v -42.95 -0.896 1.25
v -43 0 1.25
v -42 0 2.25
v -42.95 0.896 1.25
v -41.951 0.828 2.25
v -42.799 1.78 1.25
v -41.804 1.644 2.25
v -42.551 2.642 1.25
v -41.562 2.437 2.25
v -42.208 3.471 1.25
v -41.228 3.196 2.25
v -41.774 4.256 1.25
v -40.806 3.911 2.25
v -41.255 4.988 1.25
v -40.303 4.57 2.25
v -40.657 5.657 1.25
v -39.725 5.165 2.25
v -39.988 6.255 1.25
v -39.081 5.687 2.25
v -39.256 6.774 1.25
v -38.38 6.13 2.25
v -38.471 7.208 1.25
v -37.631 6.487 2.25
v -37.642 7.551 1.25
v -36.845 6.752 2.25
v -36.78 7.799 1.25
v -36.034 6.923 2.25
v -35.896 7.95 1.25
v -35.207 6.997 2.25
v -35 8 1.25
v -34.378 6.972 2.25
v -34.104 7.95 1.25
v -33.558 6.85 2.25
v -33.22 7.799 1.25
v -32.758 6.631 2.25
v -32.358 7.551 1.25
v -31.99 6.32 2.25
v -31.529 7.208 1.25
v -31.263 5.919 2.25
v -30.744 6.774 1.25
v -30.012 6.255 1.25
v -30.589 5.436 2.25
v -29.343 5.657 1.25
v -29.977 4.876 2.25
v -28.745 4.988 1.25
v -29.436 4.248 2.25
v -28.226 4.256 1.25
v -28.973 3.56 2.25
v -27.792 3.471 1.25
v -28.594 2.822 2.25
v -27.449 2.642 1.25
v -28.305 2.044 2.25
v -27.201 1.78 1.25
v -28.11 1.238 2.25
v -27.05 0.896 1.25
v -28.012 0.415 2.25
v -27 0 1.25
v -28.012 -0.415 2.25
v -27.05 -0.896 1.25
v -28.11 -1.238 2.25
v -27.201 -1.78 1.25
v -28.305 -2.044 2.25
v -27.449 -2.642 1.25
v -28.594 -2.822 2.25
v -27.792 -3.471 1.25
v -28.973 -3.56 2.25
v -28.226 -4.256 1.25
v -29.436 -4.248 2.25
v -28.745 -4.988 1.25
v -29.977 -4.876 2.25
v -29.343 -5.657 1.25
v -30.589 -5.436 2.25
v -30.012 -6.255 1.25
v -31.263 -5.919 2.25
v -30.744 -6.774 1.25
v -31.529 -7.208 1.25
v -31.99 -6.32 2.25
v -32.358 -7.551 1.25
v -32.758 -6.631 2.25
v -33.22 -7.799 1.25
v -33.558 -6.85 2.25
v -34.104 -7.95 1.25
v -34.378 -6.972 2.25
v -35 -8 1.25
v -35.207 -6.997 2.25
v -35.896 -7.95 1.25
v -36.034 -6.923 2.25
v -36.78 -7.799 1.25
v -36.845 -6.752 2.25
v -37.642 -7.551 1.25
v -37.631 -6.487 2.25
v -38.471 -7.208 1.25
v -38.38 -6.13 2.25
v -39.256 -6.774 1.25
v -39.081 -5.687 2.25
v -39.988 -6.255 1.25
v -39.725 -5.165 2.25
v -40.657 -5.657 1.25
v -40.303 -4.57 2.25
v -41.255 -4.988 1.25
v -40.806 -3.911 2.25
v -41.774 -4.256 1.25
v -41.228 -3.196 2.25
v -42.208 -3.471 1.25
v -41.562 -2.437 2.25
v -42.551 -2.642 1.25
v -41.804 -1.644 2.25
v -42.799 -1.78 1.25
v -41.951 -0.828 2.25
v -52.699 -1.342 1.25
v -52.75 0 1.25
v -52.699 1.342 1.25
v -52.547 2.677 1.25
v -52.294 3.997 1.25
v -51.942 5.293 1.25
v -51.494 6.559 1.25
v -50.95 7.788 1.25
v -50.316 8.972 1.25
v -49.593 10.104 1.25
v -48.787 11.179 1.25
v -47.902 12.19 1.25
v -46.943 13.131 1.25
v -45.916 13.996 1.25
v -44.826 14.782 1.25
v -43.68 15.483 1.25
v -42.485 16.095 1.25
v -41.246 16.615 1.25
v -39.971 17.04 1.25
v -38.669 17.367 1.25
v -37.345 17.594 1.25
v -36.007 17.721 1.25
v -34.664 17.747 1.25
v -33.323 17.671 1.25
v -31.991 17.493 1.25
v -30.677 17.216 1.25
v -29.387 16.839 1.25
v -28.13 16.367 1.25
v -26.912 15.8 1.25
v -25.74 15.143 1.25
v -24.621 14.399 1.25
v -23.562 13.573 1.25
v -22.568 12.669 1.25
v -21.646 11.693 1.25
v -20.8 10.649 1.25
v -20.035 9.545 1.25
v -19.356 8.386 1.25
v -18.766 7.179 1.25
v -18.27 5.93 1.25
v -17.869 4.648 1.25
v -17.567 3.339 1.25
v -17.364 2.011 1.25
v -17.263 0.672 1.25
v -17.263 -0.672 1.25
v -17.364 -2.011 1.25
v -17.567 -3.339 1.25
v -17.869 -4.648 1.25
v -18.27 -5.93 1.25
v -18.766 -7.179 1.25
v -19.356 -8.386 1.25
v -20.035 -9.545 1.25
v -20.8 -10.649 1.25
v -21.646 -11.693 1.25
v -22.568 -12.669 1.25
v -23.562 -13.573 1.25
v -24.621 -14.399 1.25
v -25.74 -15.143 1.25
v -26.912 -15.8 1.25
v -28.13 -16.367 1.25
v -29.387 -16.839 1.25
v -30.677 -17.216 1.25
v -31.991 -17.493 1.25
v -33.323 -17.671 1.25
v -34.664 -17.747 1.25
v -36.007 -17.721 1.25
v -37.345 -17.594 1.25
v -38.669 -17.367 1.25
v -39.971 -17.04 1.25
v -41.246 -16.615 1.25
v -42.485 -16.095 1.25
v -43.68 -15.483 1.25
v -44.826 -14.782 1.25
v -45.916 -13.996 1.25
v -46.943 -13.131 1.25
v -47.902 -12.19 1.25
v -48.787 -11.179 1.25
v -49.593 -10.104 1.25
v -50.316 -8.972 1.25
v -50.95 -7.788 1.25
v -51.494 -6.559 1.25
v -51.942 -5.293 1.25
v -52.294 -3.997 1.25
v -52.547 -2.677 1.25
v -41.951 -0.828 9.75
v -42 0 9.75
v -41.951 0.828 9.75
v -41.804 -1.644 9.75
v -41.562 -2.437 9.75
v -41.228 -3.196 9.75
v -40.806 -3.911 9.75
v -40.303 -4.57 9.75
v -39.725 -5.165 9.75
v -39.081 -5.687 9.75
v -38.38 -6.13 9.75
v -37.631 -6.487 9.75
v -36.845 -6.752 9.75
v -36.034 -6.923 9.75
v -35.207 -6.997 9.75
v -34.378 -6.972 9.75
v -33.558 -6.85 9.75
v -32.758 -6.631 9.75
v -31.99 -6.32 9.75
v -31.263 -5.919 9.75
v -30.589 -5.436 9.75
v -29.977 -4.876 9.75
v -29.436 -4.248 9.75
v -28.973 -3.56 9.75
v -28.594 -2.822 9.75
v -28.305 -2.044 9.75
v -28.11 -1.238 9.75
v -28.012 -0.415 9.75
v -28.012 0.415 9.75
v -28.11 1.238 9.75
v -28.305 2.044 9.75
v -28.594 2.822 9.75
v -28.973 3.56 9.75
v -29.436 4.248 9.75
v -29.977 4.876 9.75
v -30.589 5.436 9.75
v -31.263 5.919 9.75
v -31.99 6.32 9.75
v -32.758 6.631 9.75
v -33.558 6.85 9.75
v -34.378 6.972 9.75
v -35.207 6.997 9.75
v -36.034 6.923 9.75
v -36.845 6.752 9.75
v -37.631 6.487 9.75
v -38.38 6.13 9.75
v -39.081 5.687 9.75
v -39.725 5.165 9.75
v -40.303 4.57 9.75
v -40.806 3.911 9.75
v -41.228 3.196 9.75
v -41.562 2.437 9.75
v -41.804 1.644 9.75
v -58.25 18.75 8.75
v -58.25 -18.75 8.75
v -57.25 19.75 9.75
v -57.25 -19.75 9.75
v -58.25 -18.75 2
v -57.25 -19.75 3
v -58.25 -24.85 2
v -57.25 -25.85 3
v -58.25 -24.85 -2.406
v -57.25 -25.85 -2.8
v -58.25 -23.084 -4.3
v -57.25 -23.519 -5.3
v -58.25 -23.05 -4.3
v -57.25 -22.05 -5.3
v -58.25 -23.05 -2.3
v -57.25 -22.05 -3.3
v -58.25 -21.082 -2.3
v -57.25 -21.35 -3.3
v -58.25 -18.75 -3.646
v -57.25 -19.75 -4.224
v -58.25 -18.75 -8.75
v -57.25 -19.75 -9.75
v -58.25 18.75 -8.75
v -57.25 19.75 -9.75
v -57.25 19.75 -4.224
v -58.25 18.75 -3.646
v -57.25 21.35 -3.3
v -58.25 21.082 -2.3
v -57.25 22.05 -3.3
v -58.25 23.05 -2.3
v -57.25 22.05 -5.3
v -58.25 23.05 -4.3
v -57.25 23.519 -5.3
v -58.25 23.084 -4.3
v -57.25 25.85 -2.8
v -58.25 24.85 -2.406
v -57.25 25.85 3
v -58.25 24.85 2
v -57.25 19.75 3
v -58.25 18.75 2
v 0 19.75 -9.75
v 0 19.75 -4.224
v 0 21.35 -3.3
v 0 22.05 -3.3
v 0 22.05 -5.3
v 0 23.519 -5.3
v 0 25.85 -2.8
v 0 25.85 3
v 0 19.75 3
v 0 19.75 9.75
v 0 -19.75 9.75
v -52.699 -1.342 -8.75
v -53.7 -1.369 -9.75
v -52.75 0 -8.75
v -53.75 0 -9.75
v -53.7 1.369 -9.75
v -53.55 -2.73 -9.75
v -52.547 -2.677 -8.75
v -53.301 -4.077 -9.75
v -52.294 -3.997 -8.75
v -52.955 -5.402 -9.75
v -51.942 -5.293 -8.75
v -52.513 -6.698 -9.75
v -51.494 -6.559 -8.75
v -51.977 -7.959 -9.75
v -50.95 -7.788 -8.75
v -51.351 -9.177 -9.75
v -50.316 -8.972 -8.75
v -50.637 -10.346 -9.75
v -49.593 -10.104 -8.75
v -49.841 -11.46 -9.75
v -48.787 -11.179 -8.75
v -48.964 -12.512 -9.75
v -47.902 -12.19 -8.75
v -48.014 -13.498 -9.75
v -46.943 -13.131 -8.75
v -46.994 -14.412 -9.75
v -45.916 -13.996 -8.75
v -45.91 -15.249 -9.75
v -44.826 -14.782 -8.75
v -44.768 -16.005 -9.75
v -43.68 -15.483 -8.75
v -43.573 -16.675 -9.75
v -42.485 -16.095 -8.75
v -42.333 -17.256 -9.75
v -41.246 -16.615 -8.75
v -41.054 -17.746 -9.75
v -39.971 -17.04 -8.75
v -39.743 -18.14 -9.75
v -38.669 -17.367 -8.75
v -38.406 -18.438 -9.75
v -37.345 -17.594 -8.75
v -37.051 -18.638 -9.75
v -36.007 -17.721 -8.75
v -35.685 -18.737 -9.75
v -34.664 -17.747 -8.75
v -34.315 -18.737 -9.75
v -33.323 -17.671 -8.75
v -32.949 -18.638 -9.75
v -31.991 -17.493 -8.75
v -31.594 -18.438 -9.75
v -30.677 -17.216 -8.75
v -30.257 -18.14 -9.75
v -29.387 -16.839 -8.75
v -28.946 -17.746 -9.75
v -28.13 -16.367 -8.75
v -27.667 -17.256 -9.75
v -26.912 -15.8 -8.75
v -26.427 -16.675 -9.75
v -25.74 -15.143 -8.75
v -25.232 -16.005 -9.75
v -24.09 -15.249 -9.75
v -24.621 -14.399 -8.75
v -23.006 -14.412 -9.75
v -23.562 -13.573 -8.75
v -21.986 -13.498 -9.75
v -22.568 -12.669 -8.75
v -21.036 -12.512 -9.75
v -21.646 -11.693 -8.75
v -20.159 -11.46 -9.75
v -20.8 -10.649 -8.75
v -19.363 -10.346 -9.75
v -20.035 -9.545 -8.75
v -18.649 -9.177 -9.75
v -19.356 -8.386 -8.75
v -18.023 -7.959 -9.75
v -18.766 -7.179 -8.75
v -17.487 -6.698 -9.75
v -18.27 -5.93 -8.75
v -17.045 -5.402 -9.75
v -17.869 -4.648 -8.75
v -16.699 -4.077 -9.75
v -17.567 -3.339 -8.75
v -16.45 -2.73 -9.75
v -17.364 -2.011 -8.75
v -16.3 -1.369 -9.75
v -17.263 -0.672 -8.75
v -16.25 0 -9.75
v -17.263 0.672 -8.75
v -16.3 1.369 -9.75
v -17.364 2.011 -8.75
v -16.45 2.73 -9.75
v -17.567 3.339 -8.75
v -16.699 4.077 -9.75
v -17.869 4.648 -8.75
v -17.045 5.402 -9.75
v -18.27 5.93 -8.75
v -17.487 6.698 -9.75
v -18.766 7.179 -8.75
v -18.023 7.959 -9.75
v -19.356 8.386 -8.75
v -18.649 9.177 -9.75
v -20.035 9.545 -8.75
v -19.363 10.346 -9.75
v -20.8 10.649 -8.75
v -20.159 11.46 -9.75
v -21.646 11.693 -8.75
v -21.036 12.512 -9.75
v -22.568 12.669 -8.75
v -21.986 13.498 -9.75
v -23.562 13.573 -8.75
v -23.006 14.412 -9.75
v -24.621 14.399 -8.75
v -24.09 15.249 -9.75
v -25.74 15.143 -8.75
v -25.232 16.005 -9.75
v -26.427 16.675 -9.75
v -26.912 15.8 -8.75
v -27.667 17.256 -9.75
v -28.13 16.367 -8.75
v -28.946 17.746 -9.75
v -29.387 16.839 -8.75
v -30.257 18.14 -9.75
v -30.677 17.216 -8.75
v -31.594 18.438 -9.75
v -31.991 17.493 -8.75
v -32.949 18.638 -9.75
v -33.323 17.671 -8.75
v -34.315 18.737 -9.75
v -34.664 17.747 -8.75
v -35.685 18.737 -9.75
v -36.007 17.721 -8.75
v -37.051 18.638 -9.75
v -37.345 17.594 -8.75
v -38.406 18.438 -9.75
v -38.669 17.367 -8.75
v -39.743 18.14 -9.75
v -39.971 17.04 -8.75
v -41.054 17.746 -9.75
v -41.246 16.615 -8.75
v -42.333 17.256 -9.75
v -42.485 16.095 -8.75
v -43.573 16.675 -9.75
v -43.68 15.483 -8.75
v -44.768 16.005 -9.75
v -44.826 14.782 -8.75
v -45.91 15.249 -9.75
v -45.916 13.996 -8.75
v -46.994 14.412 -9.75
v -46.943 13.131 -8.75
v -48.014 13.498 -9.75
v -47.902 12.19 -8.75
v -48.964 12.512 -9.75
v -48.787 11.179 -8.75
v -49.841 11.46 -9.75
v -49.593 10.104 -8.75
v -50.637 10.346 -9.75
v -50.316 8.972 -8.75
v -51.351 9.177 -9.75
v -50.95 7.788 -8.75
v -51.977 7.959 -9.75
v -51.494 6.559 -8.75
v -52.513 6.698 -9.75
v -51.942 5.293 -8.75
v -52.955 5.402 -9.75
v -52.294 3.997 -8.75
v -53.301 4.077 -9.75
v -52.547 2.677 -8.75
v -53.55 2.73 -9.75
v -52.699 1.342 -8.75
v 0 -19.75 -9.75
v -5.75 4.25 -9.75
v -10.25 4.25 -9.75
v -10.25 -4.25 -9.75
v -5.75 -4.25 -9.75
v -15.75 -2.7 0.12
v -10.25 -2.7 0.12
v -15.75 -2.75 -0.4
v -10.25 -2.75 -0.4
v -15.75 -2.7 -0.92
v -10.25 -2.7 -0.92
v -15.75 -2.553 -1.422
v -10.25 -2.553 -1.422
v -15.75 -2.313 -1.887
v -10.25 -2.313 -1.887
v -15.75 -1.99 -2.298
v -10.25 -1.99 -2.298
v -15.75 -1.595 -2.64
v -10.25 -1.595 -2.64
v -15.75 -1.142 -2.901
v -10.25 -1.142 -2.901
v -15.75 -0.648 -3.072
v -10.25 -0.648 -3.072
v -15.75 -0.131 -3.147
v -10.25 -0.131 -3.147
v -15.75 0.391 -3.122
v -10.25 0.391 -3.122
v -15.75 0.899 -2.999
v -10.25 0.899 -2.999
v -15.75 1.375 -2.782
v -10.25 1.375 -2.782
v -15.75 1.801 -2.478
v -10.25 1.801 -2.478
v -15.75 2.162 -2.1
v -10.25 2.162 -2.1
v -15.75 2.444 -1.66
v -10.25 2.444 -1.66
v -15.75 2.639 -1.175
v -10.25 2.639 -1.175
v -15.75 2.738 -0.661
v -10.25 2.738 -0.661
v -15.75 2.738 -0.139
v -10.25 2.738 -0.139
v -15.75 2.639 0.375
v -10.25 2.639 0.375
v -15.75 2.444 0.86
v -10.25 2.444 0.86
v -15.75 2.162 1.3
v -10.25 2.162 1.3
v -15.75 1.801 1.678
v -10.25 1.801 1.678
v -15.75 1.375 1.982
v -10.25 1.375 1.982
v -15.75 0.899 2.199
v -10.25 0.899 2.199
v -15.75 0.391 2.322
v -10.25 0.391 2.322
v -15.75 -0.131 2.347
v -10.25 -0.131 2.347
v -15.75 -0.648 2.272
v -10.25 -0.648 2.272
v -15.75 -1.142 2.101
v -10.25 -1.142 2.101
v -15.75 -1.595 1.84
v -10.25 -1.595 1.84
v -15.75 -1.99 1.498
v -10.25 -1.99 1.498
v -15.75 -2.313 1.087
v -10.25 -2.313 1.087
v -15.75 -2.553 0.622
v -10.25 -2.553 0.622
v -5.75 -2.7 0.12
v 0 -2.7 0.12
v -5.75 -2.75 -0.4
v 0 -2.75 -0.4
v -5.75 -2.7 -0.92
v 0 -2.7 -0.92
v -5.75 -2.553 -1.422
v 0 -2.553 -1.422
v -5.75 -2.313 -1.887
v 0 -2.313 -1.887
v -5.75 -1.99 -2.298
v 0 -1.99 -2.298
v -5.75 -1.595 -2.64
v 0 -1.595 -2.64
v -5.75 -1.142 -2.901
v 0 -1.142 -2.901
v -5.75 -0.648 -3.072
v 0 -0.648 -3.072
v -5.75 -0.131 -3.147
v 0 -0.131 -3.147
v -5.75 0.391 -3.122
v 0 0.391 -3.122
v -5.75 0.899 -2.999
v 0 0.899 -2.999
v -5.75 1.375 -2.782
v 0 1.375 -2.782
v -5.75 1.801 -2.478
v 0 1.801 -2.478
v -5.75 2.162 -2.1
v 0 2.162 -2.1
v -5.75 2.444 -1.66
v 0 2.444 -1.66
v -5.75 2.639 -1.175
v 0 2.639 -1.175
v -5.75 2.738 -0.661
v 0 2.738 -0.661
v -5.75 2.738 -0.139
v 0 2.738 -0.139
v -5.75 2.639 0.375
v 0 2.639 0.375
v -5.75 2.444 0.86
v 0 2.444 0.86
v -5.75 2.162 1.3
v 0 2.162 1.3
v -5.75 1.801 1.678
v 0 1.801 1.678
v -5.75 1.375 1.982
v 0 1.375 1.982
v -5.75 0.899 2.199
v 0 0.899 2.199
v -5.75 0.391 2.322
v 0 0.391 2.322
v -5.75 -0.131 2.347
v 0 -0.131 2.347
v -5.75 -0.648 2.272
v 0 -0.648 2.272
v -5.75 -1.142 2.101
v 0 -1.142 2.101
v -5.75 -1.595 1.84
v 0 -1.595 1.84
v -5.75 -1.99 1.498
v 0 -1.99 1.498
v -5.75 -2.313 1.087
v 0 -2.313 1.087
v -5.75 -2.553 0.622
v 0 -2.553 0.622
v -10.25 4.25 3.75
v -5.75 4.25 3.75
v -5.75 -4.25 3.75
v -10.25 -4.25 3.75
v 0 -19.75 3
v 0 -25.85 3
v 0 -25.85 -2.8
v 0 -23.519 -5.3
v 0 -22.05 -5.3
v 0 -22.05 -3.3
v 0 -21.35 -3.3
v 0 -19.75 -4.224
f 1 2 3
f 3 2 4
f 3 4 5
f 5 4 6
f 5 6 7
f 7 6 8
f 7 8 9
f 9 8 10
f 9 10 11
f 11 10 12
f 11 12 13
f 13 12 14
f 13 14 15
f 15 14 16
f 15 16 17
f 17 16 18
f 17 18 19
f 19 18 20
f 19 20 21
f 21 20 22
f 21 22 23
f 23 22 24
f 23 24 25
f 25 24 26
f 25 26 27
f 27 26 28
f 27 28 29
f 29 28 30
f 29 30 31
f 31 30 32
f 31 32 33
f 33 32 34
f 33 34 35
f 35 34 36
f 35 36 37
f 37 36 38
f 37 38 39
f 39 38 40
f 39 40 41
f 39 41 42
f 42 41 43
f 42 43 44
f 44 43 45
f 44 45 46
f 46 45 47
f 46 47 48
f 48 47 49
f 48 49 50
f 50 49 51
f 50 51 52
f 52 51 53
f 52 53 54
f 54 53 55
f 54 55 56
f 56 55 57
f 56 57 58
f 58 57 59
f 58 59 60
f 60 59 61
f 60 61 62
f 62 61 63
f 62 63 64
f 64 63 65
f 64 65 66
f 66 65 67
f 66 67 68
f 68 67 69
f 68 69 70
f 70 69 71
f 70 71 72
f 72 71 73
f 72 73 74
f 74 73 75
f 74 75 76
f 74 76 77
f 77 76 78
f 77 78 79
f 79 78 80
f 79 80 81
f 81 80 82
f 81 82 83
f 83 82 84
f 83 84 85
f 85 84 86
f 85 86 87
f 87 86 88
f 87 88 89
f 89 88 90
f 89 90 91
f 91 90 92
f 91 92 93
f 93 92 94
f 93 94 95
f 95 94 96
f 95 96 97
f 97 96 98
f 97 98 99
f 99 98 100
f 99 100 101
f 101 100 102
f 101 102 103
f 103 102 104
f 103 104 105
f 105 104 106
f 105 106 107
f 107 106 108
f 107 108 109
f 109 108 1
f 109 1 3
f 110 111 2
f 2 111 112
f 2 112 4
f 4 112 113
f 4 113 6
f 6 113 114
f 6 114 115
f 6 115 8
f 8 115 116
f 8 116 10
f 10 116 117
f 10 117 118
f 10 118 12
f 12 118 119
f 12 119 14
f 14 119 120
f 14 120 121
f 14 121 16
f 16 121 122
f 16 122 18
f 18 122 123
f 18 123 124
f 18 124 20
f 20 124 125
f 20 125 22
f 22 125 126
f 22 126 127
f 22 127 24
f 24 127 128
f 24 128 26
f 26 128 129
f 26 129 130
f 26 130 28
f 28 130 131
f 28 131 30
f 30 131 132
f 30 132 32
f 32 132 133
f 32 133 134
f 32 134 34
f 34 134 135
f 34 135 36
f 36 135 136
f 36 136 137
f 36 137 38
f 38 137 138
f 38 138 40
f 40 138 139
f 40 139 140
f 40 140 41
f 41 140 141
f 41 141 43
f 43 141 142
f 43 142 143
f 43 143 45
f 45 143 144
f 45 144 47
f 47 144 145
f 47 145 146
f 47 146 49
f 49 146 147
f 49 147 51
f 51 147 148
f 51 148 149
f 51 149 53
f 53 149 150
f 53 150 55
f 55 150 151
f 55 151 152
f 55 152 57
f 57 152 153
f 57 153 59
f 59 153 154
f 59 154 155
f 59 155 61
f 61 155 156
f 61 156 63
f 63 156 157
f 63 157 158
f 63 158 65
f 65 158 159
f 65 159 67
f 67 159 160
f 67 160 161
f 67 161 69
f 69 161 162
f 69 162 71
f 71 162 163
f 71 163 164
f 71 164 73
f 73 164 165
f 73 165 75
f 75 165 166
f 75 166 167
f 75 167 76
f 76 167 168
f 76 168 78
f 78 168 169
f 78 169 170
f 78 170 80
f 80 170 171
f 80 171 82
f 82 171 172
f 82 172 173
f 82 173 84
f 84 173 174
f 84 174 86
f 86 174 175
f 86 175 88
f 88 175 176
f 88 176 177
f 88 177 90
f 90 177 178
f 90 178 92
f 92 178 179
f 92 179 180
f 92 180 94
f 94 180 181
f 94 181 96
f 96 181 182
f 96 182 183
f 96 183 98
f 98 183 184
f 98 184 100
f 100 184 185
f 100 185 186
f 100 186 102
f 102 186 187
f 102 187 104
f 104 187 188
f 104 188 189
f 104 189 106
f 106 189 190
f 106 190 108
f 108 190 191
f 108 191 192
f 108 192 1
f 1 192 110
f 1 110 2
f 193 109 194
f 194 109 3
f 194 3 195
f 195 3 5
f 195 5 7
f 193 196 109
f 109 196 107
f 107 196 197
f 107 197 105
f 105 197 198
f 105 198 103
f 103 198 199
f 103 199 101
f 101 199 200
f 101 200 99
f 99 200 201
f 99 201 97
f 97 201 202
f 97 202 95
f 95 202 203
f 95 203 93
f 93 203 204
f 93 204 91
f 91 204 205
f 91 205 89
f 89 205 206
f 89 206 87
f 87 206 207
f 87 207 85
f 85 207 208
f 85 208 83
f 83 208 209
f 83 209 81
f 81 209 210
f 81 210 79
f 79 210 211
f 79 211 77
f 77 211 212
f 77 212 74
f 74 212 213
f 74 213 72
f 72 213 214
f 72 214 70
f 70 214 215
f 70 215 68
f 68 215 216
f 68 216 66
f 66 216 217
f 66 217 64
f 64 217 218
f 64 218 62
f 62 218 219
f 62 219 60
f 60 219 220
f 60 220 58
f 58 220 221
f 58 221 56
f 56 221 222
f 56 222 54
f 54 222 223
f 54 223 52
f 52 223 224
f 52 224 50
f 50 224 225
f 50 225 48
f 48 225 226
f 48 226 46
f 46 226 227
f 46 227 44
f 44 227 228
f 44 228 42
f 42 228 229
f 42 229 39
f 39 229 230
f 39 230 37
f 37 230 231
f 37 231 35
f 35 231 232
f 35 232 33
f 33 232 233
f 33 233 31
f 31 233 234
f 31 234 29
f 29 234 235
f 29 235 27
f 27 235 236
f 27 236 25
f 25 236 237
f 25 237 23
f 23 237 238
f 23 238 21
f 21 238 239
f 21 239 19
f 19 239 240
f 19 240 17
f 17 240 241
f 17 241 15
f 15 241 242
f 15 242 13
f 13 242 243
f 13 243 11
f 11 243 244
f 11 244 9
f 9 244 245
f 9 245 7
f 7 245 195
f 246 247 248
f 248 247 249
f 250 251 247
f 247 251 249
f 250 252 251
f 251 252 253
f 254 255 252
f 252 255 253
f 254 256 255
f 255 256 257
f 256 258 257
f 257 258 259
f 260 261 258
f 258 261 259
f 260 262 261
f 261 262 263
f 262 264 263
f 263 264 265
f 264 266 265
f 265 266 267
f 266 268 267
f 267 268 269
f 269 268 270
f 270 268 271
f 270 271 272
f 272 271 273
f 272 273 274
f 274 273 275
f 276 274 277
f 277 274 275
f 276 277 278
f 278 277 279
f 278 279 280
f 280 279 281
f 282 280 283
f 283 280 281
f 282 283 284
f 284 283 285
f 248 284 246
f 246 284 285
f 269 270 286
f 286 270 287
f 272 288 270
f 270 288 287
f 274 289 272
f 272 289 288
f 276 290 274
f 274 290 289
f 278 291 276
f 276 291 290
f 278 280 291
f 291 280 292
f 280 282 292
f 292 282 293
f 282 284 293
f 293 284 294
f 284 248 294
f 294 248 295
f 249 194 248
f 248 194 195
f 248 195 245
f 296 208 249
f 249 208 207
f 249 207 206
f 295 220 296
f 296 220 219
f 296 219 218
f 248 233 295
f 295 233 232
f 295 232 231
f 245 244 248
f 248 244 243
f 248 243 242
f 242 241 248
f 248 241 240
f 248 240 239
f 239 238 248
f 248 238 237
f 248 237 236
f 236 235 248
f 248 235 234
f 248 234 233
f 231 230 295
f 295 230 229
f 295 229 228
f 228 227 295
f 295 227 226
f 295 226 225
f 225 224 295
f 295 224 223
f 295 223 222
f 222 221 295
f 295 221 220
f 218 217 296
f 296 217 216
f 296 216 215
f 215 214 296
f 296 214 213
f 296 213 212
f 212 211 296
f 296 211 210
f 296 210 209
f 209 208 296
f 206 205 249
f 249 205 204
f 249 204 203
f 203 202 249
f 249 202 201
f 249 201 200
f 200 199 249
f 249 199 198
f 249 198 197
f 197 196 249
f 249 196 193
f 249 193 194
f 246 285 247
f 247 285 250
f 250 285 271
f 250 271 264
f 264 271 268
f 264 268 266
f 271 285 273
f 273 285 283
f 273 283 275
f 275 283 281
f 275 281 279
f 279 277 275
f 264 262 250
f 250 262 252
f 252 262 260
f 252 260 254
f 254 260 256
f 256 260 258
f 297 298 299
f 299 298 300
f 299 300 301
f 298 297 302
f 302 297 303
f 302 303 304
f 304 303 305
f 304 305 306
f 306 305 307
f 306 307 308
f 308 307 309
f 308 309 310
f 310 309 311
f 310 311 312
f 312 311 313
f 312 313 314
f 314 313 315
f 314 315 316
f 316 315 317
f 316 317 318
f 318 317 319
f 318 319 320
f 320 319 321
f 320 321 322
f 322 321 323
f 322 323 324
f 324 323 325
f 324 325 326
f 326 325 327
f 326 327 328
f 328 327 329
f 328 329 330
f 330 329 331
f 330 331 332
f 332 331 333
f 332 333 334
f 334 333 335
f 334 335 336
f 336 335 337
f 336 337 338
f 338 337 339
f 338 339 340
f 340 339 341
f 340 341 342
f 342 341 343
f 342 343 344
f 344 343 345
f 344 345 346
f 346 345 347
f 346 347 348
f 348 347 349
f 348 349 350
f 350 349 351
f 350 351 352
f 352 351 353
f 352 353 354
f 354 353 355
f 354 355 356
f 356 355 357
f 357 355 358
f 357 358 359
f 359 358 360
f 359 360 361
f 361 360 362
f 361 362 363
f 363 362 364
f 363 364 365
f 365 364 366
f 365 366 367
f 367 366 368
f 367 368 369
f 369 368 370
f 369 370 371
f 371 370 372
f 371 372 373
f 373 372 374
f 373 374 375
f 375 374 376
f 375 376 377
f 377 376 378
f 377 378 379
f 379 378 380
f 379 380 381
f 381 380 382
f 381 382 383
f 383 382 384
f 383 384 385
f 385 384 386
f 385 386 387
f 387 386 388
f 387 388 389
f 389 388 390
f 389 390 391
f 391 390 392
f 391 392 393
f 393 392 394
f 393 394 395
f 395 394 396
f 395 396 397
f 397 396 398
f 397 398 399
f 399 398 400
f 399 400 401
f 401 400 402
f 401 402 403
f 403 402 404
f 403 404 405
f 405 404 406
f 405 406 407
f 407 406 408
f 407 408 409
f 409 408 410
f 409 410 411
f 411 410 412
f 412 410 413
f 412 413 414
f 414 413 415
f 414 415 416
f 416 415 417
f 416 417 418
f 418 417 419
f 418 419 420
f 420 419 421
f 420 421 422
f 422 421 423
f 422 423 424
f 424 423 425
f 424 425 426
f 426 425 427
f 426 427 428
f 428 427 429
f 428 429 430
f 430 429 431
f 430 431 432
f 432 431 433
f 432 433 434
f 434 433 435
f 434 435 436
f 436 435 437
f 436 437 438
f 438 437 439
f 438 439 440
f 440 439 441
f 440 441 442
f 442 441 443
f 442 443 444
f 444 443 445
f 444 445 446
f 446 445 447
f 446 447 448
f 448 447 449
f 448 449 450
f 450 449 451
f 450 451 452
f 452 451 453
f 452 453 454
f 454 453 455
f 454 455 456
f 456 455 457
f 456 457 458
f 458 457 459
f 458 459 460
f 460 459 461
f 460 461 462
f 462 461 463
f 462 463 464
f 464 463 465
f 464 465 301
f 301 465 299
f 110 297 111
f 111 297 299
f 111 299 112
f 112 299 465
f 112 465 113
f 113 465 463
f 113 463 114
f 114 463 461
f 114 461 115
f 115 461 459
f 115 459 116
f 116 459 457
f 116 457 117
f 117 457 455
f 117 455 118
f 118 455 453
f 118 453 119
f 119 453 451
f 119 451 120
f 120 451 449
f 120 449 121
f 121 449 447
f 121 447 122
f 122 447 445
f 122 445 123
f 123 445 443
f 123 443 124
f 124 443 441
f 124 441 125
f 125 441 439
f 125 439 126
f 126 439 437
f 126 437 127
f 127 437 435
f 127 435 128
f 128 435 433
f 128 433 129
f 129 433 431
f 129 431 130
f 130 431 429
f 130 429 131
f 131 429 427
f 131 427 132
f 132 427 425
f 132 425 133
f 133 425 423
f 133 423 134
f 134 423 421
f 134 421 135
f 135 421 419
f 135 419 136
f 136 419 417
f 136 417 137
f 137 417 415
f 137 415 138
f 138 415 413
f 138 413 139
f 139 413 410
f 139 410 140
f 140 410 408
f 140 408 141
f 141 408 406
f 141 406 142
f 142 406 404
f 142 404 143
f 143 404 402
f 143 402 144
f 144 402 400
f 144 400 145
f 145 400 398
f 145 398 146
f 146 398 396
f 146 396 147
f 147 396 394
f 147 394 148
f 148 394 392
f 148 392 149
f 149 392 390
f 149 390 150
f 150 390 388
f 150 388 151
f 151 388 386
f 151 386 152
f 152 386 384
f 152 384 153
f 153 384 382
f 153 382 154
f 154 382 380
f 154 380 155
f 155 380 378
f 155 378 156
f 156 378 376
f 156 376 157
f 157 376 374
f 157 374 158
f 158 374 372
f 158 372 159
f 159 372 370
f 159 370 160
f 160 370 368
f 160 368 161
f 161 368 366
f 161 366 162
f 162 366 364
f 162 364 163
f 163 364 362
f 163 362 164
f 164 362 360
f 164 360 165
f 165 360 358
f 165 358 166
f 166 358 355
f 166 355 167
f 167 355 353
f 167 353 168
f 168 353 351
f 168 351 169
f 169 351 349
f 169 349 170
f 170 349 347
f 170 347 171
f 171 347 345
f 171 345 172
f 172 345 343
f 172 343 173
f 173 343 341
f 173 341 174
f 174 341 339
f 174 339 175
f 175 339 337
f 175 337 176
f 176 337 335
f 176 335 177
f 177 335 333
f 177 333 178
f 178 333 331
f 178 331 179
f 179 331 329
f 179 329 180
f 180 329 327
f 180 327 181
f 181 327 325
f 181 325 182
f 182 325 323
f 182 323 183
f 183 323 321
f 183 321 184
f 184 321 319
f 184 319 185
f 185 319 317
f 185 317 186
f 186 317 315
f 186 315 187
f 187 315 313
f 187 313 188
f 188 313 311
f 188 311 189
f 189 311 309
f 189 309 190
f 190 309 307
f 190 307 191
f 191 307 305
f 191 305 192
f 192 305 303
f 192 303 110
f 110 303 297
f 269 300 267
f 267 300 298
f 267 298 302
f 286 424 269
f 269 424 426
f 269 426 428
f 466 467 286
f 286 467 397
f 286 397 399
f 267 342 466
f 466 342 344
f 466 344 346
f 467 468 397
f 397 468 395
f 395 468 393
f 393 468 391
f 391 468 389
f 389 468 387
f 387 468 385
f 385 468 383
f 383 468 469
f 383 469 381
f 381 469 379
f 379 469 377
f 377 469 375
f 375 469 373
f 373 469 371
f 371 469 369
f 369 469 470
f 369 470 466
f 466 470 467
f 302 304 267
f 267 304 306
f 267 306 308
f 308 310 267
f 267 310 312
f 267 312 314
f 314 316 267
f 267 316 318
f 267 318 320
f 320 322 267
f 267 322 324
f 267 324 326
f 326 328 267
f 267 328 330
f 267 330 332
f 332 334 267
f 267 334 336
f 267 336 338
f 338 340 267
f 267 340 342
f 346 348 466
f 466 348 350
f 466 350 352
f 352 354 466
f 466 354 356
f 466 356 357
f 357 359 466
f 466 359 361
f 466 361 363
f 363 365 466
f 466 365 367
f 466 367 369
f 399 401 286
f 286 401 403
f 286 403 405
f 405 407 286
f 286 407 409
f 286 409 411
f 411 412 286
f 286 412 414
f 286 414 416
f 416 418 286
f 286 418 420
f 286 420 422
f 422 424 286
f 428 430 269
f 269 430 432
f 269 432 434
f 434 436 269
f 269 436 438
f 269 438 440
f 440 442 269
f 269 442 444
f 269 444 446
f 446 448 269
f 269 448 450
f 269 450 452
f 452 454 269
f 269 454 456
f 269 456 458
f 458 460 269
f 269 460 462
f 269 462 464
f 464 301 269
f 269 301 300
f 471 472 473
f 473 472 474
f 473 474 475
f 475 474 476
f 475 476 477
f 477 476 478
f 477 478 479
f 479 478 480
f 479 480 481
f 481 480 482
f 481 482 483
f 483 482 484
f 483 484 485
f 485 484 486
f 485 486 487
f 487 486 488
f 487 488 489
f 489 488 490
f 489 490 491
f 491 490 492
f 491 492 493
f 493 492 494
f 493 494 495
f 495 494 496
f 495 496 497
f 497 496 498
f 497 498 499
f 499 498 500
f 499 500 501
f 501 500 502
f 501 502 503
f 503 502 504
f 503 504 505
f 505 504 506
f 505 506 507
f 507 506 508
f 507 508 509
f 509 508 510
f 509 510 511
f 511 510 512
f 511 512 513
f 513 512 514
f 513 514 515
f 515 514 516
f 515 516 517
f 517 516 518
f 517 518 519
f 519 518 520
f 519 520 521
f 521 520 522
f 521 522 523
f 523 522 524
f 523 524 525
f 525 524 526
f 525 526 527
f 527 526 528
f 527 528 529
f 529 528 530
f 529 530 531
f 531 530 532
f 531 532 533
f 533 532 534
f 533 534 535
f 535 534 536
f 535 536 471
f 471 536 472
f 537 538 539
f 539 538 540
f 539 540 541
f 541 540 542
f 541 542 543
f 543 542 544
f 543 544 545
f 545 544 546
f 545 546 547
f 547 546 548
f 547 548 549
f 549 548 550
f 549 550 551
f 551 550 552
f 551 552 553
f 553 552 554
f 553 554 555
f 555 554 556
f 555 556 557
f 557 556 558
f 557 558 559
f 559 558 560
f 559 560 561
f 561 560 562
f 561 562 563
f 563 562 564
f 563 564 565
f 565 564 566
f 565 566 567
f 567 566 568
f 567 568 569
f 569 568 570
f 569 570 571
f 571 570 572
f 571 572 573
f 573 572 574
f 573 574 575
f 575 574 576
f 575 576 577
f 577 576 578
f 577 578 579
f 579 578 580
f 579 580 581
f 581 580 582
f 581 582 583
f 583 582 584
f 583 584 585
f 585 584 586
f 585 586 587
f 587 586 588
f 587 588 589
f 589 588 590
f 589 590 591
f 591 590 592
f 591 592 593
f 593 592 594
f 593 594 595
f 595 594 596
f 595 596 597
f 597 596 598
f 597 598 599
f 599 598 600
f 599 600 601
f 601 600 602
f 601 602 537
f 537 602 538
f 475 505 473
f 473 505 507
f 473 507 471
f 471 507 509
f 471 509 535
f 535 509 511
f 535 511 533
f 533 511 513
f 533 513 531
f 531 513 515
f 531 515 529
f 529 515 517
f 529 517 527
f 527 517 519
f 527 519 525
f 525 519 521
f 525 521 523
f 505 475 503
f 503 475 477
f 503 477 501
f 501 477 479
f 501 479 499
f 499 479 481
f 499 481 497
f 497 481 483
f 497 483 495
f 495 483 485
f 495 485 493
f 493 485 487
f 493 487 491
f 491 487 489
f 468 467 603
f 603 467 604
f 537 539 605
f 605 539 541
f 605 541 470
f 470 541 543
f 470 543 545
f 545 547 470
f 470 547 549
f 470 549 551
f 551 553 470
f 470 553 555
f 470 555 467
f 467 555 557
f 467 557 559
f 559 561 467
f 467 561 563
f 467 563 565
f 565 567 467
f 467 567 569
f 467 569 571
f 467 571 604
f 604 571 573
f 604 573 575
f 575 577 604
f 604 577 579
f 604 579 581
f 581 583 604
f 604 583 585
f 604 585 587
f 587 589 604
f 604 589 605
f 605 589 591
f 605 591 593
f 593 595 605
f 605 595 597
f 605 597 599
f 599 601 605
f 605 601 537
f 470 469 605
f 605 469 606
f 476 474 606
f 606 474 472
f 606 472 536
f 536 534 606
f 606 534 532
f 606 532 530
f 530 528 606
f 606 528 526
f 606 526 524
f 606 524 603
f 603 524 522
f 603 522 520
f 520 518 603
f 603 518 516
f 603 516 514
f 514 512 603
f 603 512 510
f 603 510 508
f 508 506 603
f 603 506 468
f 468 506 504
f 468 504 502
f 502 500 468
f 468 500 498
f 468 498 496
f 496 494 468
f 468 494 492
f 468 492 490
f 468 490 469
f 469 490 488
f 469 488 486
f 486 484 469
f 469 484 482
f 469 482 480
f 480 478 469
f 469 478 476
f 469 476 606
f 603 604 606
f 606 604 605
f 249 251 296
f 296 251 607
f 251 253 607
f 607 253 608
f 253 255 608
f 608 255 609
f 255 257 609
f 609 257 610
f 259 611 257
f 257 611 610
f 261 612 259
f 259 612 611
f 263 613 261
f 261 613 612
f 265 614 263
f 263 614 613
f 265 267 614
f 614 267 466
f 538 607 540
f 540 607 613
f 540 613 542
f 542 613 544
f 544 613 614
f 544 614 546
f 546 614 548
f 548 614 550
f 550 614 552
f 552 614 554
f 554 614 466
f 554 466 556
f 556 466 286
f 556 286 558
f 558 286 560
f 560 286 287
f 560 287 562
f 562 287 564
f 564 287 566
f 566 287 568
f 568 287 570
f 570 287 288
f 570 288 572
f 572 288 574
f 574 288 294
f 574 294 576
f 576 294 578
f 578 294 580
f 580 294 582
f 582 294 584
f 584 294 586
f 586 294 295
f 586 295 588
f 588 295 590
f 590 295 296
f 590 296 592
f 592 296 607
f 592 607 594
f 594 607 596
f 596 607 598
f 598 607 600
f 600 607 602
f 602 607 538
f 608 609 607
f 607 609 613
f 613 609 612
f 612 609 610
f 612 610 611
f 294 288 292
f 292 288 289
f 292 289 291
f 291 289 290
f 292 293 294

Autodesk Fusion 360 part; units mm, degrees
sketch "Main Profile" plane through (0, 0, 0) normal (1, 0, 0) x (0, 1, 0)
  line L0 (-19.75, -9.75) -> (19.75, -9.75)
  line L1 (19.75, -9.75) -> (19.75, 9.75)
  line L2 (19.75, 9.75) -> (-19.75, 9.75)
  line L3 (-19.75, 9.75) -> (-19.75, -9.75)
  line L4 (-19.75, -9.75) -> (19.75, 9.75) construction
  line L5 (19.75, -9.75) -> (-19.75, 9.75) construction
  line L6 (-19.75, 3) -> (-25.85, 3)
  line L7 (-25.85, 3) -> (-25.85, -2.8)
  line L8 (-25.85, -2.8) -> (-23.5187, -5.3)
  line L9 (-23.5187, -5.3) -> (-22.05, -5.3)
  line L10 (-22.05, -5.3) -> (-22.05, -3.3)
  line L11 (-22.05, -3.3) -> (-21.35, -3.3)
  line L12 (-21.35, -3.3) -> (-19.75, -4.2238)
  line L13 (0, 9.75) -> (0, -9.75) construction
  line L14 (19.75, 3) -> (25.85, 3)
  line L15 (25.85, 3) -> (25.85, -2.8)
  line L16 (25.85, -2.8) -> (23.5187, -5.3)
  line L17 (23.5187, -5.3) -> (22.05, -5.3)
  line L18 (22.05, -5.3) -> (22.05, -3.3)
  line L19 (22.05, -3.3) -> (21.35, -3.3)
  line L20 (21.35, -3.3) -> (19.75, -4.2238)
  circle A0 centre (0, -0.4) radius 2.75
  dimension "d1" = 39.5
  dimension "d2" = 19.5
  dimension "d3" = 6.1
  dimension "d4" = 6.75
  dimension "d5" = 8.3
  dimension "d6" = 43
  dimension "d7" = 2.5
  dimension "d8" = 120
  dimension "d9" = 3.8
  dimension "d10" = 2
  dimension "d11" = 1.6
  dimension "d12" = 5.5
  dimension "d13" = 0.4
extrude "Extrude1" add sketch "Main Profile" against normal blind 58.25 contours L0 L1 L2 L3 | L3 L6 L7 L8 L9 L10 L11 L12 | L1 L14 L15 L16 L17 L18 L19 L20 | A0
sketch "Side" plane through (0, 0, -9.75) normal (0, 0, -1) x (1, 0, 0)
  line L0 (0, -19.75) -> (0, 19.75)
  line L1 (0, 19.75) -> (-58.25, 19.75)
  line L2 (-58.25, 19.75) -> (-58.25, -19.75)
  line L3 (-58.25, -19.75) -> (0, -19.75)
  circle A0 centre (-35, 0) radius 17.75
  circle A1 centre (-35, 0) radius 7
  line L4 (-10.25, -4.25) -> (-5.75, -4.25)
  line L5 (-5.75, -4.25) -> (-5.75, 4.25)
  line L6 (-5.75, 4.25) -> (-10.25, 4.25)
  line L7 (-10.25, 4.25) -> (-10.25, -4.25)
  line L8 (-10.25, -4.25) -> (-5.75, 4.25) construction
  line L9 (-5.75, -4.25) -> (-10.25, 4.25) construction
  point P0 (-8, 0)
  dimension "d16" = 35.5
  dimension "d17" = 35
  dimension "d18" = 14
  dimension "d19" = 8.5
  dimension "d20" = 4.5
  dimension "d21" = 5.75
extrude "Extrude2" cut sketch "Side" against normal blind 13.5 contours L4 L5 L6 L7
extrude "Extrude3" cut sketch "Side" against normal blind 40 contours A1
extrude "Extrude4" cut sketch "Side" against normal blind 10.85 contours A0
extrude "Extrude5" cut sketch "Main Profile" against normal blind 15.75 contours A0
extrude "Extrude6" cut 1 faces at (-20.8994, 0.8818, 1.1) along direction (0, 0, 1) blind 0.15
chamfer "Chamfer1" distance 1 angle 45 1 edges at (-51.5488, -6.4187, -9.75)
chamfer "Chamfer2" distance 1 angle 45 20 edges at (-58.25, 0, -9.75) (-58.25, -19.75, -6.9869) (-58.25, -20.55, -3.7619) (-58.25, -21.7, -3.3) (-58.25, -22.05, -4.3) (-58.25, -22.7844, -5.3) (-58.25, -24.6844, -4.05) (-58.25, -25.85, 0.1) (-58.25, -22.8, 3) (-58.25, -19.75, 6.375) (-58.25, 0, 9.75) (-58.25, 19.75, 6.375) (-58.25, 22.8, 3) (-58.25, 25.85, 0.1) (-58.25, 24.6844, -4.05) (-58.25, 22.7844, -5.3) (-58.25, 22.05, -4.3) (-58.25, 19.75, -6.9869) (-58.25, 21.7, -3.3) (-58.25, 20.55, -3.7619)
chamfer "Chamfer3" distance 1 angle 45 1 edges at (-41.5263, 2.5313, 1.25)
